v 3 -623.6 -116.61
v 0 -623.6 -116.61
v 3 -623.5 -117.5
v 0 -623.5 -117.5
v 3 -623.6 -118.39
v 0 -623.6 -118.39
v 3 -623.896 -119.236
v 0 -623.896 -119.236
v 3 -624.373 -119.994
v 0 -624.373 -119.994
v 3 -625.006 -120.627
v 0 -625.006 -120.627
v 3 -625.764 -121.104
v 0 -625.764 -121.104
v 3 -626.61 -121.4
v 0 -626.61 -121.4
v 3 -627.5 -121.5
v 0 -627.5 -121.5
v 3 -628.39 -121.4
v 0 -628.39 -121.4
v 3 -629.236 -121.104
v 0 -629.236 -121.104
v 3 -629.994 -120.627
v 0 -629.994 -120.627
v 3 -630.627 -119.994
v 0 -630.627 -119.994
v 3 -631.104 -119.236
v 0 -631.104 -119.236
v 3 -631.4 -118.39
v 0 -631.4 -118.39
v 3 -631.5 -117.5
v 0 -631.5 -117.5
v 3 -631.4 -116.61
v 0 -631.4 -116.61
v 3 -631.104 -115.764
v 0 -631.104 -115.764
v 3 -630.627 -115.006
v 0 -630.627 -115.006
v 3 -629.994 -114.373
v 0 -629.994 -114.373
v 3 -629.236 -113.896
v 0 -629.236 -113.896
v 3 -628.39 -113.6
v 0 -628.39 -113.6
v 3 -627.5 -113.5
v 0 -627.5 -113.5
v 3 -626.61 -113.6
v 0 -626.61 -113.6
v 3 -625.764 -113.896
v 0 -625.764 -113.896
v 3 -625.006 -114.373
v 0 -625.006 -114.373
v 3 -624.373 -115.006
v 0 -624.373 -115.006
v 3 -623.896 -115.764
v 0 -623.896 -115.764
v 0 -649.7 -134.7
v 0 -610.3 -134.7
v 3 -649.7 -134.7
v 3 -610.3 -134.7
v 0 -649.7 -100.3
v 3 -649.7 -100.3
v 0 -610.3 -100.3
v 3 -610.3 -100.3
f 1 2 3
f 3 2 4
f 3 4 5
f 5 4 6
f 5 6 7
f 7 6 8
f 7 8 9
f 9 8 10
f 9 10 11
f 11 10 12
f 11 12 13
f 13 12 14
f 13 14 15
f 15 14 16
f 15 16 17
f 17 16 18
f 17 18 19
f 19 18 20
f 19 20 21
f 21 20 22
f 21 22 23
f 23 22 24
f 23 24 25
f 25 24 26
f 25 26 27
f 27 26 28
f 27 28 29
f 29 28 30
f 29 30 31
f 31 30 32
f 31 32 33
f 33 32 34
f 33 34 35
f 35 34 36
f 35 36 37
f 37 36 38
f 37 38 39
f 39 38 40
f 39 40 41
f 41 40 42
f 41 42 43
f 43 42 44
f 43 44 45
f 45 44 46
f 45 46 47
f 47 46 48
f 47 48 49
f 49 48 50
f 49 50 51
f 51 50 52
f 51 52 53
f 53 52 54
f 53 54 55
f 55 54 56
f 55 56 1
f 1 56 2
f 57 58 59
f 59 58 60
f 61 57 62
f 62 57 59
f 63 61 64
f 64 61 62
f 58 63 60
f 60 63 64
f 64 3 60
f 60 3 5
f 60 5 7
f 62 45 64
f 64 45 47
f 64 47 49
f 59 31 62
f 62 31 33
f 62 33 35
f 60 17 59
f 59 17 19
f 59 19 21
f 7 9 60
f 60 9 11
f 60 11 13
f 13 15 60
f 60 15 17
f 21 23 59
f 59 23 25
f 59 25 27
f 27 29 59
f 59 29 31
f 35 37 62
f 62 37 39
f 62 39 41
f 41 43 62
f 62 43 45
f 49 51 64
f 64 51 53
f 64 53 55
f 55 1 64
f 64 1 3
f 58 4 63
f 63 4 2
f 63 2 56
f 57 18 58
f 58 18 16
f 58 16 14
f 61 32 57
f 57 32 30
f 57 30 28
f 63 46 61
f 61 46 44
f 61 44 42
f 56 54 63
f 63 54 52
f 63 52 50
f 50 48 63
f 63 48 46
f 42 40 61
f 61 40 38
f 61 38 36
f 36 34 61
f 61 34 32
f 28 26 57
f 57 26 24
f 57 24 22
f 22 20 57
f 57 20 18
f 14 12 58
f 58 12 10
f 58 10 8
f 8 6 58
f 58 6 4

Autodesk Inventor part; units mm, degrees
ref_plane "YZ Plane" through (0, 0, 0) normal (1, 0, 0) x (0, 1, 0)
ref_plane "XZ Plane" through (0, 0, 0) normal (0, 1, 0) x (-1, 0, 0)
ref_plane "XY Plane" through (0, 0, 0) normal (0, 0, 1) x (1, 0, 0)
ref_plane "Work Plane1" through (0, 0, -290) normal (1, 0, 0) x (0, 1, 0)
sketch "Sketch1" plane through (0, 0, -290) normal (1, 0, 0) x (0, 1, 0)
  circle A0 centre (-627.5, 172.5) radius 11 construction
  circle A1 centre (-627.5, 172.5) radius 4 construction
  line L0 (-655, 150) -> (-605, 150)
  line L1 (-605, 150) -> (-605, 195)
  line L2 (-605, 195) -> (-655, 195)
  line L3 (-655, 195) -> (-655, 150)
  circle A2 centre (-627.5, 172.5) radius 16 construction
  line L4 (0, 0) -> (-700, 0) projected
  line L5 (-700, -55) -> (-700, 580) projected
  circle A3 centre (-627.5, 172.5) radius 4
  line L6 (-649.7, 155.3) -> (-610.3, 155.3)
  line L7 (-610.3, 155.3) -> (-610.3, 189.7)
  line L8 (-610.3, 189.7) -> (-649.7, 189.7)
  line L9 (-649.7, 189.7) -> (-649.7, 155.3)
  point P0 (0, 290)
  dimension "d0" = 22
  dimension "d1" = 8
  dimension "d2" = 45
  dimension "d3" = 50
  dimension "d4" = 5
  dimension "d7" = 22.5
  dimension "d8" = 22.5
  dimension "d10" = 5.3
  dimension "d13" = 150
  dimension "d14" = 95
extrude "Extrusion1" add sketch "Sketch1" along normal blind 3 contours L9 L8 L7 L6
properties part number "cord roller"
